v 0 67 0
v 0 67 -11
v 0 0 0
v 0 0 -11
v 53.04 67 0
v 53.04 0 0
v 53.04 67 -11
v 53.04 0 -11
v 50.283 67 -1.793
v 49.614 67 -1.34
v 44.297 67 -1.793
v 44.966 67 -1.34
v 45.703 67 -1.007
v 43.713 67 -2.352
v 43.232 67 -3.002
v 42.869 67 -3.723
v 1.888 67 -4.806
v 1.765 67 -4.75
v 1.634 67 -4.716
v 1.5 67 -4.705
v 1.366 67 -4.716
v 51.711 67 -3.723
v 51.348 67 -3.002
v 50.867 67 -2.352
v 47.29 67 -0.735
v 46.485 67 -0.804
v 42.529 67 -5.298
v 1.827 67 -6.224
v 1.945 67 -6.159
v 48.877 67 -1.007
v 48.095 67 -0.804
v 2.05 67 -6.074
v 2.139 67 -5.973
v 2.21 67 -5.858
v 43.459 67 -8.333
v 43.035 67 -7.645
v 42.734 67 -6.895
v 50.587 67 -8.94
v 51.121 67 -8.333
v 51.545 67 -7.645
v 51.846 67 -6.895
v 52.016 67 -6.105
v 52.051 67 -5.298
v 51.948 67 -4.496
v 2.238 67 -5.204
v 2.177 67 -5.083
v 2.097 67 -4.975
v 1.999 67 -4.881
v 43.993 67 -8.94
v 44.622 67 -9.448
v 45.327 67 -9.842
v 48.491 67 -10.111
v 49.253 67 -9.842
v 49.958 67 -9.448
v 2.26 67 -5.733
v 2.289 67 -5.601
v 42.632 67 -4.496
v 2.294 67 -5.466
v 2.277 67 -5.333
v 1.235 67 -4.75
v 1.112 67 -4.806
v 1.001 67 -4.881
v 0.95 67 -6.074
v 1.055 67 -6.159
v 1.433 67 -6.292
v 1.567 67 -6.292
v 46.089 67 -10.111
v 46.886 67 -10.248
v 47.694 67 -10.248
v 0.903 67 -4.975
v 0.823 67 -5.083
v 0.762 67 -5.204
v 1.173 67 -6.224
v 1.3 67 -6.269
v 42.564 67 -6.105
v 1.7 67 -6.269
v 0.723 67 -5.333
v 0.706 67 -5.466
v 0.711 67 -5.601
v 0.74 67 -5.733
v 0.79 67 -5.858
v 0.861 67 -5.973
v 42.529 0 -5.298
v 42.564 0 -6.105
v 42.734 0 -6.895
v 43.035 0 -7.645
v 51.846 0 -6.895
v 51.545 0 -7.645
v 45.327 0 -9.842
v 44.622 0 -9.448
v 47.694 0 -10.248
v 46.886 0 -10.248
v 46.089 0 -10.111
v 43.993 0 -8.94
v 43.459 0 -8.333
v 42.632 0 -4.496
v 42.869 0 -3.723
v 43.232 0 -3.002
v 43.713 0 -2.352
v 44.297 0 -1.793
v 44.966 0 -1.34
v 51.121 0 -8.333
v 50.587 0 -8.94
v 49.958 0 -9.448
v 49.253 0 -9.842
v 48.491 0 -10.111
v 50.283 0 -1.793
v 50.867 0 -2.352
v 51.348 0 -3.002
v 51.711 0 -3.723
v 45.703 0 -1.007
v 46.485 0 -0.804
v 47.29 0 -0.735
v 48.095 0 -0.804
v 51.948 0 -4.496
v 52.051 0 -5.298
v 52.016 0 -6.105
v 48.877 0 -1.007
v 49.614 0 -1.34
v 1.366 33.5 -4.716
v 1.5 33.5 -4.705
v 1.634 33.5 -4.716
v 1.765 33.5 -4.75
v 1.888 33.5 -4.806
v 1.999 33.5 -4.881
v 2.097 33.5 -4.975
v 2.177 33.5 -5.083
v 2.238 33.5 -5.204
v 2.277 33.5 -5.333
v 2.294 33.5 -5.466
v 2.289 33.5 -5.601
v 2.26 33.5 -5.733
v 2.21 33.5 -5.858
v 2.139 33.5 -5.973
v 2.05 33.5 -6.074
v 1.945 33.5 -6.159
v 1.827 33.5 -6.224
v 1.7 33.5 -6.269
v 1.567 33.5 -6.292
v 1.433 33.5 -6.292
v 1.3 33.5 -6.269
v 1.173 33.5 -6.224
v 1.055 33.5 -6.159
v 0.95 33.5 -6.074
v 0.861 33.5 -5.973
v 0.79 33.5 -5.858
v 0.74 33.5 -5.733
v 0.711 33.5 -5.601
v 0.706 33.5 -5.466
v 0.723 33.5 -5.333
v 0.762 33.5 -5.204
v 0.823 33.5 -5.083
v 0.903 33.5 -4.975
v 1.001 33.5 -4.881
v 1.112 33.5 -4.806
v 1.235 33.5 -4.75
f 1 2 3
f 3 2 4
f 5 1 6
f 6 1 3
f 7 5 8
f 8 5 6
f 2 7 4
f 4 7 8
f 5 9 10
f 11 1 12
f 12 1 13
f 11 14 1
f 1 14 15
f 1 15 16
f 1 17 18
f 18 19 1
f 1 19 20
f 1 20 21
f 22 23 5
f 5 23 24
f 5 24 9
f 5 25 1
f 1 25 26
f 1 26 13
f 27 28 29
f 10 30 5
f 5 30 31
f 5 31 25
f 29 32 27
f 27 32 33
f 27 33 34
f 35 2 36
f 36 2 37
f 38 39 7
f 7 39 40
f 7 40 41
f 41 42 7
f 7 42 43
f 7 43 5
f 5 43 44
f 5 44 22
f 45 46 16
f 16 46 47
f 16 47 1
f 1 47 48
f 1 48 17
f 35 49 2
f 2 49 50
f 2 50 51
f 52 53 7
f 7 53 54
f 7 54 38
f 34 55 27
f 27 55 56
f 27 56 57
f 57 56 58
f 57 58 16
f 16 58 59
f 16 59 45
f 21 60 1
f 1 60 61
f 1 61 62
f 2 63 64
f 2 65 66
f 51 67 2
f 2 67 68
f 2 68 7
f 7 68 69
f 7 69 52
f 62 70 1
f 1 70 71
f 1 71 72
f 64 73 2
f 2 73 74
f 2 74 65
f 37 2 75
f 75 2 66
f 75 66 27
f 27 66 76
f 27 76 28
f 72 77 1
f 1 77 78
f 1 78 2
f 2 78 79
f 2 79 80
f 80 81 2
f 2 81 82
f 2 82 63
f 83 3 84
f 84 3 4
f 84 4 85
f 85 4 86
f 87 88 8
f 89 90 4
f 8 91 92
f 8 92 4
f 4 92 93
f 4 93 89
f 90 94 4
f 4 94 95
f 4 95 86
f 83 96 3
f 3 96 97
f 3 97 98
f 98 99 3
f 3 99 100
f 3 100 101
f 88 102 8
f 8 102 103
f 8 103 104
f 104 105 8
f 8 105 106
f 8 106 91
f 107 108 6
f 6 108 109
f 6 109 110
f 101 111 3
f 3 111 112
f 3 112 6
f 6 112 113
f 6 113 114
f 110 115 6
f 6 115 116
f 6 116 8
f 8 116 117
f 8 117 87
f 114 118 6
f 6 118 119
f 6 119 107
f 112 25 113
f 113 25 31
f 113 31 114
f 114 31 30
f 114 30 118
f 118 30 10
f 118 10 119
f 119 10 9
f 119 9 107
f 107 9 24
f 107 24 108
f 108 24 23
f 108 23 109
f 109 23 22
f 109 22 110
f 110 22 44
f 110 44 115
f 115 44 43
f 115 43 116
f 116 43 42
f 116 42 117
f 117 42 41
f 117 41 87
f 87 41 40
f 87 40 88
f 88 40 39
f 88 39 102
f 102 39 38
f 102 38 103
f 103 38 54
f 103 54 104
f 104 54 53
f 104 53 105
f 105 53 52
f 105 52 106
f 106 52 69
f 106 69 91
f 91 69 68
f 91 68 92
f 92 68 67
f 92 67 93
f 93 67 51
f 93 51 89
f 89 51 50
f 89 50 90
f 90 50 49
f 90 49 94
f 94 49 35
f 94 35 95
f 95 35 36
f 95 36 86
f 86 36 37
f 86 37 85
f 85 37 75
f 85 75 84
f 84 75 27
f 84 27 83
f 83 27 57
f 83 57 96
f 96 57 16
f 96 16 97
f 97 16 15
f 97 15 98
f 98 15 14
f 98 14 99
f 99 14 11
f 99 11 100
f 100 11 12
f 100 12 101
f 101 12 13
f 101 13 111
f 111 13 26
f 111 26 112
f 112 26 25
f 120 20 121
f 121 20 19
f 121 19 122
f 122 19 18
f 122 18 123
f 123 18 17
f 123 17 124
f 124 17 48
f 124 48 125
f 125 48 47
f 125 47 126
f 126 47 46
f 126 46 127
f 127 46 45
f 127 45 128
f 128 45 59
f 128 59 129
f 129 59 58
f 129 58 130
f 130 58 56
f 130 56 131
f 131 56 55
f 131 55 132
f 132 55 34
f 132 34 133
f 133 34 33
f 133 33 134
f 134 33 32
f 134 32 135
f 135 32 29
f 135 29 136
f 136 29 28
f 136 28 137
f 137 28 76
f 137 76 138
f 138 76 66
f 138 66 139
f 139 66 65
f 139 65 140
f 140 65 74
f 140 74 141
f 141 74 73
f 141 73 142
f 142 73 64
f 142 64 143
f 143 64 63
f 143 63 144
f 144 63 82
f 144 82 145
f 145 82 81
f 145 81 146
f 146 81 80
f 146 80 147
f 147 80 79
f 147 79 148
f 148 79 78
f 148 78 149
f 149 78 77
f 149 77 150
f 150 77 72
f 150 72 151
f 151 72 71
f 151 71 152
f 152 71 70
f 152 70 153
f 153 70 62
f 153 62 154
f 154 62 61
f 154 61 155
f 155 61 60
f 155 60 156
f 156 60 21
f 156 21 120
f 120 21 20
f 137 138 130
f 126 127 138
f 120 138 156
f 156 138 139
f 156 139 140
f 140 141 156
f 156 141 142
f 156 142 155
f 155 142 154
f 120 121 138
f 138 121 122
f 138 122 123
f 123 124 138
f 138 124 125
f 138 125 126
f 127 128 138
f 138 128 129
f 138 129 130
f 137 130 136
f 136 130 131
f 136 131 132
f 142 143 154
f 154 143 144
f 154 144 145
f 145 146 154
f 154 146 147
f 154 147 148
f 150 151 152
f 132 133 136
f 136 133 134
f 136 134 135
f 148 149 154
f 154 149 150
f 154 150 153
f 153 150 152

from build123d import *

# Parameters (mm, degrees)
SKETCH2_W           = 53.04
SKETCH2_H           = 11
BOSS_EXTRUDE1_DEPTH = 67
SKETCH3_R           = 4.765
CUT_EXTRUDE1_DEPTH  = 87.158235822
SKETCH4_R           = 0.795
CUT_EXTRUDE2_DEPTH  = 33.5


with BuildPart() as part:
    # Sketch2 → Boss-Extrude1 (new body)
    with BuildSketch(Plane(origin=(0, 0, 0), x_dir=(1, 0, 0), z_dir=(0, 1, 0))):
        with Locations((26.52, 5.5)):
            Rectangle(SKETCH2_W, SKETCH2_H)
    extrude(amount=BOSS_EXTRUDE1_DEPTH)

    # Sketch3 → Cut-Extrude1 (cut, through all)
    with BuildSketch(Plane(origin=(0, 67, 0), x_dir=(1, 0, 0), z_dir=(0, 1, 0))):
        with Locations(Location((47.29, 5.5, 0), (0, 0, 270))):
            Circle(SKETCH3_R)
    extrude(amount=-CUT_EXTRUDE1_DEPTH, mode=Mode.SUBTRACT)

    # Sketch4 → Cut-Extrude2 (cut)
    with BuildSketch(Plane(origin=(0, 67, 0), x_dir=(1, 0, 0), z_dir=(0, 1, 0))):
        with Locations(Location((1.5, 5.5, 0), (0, 0, 270))):
            Circle(SKETCH4_R)
    extrude(amount=-CUT_EXTRUDE2_DEPTH, mode=Mode.SUBTRACT)


solid = part.part
